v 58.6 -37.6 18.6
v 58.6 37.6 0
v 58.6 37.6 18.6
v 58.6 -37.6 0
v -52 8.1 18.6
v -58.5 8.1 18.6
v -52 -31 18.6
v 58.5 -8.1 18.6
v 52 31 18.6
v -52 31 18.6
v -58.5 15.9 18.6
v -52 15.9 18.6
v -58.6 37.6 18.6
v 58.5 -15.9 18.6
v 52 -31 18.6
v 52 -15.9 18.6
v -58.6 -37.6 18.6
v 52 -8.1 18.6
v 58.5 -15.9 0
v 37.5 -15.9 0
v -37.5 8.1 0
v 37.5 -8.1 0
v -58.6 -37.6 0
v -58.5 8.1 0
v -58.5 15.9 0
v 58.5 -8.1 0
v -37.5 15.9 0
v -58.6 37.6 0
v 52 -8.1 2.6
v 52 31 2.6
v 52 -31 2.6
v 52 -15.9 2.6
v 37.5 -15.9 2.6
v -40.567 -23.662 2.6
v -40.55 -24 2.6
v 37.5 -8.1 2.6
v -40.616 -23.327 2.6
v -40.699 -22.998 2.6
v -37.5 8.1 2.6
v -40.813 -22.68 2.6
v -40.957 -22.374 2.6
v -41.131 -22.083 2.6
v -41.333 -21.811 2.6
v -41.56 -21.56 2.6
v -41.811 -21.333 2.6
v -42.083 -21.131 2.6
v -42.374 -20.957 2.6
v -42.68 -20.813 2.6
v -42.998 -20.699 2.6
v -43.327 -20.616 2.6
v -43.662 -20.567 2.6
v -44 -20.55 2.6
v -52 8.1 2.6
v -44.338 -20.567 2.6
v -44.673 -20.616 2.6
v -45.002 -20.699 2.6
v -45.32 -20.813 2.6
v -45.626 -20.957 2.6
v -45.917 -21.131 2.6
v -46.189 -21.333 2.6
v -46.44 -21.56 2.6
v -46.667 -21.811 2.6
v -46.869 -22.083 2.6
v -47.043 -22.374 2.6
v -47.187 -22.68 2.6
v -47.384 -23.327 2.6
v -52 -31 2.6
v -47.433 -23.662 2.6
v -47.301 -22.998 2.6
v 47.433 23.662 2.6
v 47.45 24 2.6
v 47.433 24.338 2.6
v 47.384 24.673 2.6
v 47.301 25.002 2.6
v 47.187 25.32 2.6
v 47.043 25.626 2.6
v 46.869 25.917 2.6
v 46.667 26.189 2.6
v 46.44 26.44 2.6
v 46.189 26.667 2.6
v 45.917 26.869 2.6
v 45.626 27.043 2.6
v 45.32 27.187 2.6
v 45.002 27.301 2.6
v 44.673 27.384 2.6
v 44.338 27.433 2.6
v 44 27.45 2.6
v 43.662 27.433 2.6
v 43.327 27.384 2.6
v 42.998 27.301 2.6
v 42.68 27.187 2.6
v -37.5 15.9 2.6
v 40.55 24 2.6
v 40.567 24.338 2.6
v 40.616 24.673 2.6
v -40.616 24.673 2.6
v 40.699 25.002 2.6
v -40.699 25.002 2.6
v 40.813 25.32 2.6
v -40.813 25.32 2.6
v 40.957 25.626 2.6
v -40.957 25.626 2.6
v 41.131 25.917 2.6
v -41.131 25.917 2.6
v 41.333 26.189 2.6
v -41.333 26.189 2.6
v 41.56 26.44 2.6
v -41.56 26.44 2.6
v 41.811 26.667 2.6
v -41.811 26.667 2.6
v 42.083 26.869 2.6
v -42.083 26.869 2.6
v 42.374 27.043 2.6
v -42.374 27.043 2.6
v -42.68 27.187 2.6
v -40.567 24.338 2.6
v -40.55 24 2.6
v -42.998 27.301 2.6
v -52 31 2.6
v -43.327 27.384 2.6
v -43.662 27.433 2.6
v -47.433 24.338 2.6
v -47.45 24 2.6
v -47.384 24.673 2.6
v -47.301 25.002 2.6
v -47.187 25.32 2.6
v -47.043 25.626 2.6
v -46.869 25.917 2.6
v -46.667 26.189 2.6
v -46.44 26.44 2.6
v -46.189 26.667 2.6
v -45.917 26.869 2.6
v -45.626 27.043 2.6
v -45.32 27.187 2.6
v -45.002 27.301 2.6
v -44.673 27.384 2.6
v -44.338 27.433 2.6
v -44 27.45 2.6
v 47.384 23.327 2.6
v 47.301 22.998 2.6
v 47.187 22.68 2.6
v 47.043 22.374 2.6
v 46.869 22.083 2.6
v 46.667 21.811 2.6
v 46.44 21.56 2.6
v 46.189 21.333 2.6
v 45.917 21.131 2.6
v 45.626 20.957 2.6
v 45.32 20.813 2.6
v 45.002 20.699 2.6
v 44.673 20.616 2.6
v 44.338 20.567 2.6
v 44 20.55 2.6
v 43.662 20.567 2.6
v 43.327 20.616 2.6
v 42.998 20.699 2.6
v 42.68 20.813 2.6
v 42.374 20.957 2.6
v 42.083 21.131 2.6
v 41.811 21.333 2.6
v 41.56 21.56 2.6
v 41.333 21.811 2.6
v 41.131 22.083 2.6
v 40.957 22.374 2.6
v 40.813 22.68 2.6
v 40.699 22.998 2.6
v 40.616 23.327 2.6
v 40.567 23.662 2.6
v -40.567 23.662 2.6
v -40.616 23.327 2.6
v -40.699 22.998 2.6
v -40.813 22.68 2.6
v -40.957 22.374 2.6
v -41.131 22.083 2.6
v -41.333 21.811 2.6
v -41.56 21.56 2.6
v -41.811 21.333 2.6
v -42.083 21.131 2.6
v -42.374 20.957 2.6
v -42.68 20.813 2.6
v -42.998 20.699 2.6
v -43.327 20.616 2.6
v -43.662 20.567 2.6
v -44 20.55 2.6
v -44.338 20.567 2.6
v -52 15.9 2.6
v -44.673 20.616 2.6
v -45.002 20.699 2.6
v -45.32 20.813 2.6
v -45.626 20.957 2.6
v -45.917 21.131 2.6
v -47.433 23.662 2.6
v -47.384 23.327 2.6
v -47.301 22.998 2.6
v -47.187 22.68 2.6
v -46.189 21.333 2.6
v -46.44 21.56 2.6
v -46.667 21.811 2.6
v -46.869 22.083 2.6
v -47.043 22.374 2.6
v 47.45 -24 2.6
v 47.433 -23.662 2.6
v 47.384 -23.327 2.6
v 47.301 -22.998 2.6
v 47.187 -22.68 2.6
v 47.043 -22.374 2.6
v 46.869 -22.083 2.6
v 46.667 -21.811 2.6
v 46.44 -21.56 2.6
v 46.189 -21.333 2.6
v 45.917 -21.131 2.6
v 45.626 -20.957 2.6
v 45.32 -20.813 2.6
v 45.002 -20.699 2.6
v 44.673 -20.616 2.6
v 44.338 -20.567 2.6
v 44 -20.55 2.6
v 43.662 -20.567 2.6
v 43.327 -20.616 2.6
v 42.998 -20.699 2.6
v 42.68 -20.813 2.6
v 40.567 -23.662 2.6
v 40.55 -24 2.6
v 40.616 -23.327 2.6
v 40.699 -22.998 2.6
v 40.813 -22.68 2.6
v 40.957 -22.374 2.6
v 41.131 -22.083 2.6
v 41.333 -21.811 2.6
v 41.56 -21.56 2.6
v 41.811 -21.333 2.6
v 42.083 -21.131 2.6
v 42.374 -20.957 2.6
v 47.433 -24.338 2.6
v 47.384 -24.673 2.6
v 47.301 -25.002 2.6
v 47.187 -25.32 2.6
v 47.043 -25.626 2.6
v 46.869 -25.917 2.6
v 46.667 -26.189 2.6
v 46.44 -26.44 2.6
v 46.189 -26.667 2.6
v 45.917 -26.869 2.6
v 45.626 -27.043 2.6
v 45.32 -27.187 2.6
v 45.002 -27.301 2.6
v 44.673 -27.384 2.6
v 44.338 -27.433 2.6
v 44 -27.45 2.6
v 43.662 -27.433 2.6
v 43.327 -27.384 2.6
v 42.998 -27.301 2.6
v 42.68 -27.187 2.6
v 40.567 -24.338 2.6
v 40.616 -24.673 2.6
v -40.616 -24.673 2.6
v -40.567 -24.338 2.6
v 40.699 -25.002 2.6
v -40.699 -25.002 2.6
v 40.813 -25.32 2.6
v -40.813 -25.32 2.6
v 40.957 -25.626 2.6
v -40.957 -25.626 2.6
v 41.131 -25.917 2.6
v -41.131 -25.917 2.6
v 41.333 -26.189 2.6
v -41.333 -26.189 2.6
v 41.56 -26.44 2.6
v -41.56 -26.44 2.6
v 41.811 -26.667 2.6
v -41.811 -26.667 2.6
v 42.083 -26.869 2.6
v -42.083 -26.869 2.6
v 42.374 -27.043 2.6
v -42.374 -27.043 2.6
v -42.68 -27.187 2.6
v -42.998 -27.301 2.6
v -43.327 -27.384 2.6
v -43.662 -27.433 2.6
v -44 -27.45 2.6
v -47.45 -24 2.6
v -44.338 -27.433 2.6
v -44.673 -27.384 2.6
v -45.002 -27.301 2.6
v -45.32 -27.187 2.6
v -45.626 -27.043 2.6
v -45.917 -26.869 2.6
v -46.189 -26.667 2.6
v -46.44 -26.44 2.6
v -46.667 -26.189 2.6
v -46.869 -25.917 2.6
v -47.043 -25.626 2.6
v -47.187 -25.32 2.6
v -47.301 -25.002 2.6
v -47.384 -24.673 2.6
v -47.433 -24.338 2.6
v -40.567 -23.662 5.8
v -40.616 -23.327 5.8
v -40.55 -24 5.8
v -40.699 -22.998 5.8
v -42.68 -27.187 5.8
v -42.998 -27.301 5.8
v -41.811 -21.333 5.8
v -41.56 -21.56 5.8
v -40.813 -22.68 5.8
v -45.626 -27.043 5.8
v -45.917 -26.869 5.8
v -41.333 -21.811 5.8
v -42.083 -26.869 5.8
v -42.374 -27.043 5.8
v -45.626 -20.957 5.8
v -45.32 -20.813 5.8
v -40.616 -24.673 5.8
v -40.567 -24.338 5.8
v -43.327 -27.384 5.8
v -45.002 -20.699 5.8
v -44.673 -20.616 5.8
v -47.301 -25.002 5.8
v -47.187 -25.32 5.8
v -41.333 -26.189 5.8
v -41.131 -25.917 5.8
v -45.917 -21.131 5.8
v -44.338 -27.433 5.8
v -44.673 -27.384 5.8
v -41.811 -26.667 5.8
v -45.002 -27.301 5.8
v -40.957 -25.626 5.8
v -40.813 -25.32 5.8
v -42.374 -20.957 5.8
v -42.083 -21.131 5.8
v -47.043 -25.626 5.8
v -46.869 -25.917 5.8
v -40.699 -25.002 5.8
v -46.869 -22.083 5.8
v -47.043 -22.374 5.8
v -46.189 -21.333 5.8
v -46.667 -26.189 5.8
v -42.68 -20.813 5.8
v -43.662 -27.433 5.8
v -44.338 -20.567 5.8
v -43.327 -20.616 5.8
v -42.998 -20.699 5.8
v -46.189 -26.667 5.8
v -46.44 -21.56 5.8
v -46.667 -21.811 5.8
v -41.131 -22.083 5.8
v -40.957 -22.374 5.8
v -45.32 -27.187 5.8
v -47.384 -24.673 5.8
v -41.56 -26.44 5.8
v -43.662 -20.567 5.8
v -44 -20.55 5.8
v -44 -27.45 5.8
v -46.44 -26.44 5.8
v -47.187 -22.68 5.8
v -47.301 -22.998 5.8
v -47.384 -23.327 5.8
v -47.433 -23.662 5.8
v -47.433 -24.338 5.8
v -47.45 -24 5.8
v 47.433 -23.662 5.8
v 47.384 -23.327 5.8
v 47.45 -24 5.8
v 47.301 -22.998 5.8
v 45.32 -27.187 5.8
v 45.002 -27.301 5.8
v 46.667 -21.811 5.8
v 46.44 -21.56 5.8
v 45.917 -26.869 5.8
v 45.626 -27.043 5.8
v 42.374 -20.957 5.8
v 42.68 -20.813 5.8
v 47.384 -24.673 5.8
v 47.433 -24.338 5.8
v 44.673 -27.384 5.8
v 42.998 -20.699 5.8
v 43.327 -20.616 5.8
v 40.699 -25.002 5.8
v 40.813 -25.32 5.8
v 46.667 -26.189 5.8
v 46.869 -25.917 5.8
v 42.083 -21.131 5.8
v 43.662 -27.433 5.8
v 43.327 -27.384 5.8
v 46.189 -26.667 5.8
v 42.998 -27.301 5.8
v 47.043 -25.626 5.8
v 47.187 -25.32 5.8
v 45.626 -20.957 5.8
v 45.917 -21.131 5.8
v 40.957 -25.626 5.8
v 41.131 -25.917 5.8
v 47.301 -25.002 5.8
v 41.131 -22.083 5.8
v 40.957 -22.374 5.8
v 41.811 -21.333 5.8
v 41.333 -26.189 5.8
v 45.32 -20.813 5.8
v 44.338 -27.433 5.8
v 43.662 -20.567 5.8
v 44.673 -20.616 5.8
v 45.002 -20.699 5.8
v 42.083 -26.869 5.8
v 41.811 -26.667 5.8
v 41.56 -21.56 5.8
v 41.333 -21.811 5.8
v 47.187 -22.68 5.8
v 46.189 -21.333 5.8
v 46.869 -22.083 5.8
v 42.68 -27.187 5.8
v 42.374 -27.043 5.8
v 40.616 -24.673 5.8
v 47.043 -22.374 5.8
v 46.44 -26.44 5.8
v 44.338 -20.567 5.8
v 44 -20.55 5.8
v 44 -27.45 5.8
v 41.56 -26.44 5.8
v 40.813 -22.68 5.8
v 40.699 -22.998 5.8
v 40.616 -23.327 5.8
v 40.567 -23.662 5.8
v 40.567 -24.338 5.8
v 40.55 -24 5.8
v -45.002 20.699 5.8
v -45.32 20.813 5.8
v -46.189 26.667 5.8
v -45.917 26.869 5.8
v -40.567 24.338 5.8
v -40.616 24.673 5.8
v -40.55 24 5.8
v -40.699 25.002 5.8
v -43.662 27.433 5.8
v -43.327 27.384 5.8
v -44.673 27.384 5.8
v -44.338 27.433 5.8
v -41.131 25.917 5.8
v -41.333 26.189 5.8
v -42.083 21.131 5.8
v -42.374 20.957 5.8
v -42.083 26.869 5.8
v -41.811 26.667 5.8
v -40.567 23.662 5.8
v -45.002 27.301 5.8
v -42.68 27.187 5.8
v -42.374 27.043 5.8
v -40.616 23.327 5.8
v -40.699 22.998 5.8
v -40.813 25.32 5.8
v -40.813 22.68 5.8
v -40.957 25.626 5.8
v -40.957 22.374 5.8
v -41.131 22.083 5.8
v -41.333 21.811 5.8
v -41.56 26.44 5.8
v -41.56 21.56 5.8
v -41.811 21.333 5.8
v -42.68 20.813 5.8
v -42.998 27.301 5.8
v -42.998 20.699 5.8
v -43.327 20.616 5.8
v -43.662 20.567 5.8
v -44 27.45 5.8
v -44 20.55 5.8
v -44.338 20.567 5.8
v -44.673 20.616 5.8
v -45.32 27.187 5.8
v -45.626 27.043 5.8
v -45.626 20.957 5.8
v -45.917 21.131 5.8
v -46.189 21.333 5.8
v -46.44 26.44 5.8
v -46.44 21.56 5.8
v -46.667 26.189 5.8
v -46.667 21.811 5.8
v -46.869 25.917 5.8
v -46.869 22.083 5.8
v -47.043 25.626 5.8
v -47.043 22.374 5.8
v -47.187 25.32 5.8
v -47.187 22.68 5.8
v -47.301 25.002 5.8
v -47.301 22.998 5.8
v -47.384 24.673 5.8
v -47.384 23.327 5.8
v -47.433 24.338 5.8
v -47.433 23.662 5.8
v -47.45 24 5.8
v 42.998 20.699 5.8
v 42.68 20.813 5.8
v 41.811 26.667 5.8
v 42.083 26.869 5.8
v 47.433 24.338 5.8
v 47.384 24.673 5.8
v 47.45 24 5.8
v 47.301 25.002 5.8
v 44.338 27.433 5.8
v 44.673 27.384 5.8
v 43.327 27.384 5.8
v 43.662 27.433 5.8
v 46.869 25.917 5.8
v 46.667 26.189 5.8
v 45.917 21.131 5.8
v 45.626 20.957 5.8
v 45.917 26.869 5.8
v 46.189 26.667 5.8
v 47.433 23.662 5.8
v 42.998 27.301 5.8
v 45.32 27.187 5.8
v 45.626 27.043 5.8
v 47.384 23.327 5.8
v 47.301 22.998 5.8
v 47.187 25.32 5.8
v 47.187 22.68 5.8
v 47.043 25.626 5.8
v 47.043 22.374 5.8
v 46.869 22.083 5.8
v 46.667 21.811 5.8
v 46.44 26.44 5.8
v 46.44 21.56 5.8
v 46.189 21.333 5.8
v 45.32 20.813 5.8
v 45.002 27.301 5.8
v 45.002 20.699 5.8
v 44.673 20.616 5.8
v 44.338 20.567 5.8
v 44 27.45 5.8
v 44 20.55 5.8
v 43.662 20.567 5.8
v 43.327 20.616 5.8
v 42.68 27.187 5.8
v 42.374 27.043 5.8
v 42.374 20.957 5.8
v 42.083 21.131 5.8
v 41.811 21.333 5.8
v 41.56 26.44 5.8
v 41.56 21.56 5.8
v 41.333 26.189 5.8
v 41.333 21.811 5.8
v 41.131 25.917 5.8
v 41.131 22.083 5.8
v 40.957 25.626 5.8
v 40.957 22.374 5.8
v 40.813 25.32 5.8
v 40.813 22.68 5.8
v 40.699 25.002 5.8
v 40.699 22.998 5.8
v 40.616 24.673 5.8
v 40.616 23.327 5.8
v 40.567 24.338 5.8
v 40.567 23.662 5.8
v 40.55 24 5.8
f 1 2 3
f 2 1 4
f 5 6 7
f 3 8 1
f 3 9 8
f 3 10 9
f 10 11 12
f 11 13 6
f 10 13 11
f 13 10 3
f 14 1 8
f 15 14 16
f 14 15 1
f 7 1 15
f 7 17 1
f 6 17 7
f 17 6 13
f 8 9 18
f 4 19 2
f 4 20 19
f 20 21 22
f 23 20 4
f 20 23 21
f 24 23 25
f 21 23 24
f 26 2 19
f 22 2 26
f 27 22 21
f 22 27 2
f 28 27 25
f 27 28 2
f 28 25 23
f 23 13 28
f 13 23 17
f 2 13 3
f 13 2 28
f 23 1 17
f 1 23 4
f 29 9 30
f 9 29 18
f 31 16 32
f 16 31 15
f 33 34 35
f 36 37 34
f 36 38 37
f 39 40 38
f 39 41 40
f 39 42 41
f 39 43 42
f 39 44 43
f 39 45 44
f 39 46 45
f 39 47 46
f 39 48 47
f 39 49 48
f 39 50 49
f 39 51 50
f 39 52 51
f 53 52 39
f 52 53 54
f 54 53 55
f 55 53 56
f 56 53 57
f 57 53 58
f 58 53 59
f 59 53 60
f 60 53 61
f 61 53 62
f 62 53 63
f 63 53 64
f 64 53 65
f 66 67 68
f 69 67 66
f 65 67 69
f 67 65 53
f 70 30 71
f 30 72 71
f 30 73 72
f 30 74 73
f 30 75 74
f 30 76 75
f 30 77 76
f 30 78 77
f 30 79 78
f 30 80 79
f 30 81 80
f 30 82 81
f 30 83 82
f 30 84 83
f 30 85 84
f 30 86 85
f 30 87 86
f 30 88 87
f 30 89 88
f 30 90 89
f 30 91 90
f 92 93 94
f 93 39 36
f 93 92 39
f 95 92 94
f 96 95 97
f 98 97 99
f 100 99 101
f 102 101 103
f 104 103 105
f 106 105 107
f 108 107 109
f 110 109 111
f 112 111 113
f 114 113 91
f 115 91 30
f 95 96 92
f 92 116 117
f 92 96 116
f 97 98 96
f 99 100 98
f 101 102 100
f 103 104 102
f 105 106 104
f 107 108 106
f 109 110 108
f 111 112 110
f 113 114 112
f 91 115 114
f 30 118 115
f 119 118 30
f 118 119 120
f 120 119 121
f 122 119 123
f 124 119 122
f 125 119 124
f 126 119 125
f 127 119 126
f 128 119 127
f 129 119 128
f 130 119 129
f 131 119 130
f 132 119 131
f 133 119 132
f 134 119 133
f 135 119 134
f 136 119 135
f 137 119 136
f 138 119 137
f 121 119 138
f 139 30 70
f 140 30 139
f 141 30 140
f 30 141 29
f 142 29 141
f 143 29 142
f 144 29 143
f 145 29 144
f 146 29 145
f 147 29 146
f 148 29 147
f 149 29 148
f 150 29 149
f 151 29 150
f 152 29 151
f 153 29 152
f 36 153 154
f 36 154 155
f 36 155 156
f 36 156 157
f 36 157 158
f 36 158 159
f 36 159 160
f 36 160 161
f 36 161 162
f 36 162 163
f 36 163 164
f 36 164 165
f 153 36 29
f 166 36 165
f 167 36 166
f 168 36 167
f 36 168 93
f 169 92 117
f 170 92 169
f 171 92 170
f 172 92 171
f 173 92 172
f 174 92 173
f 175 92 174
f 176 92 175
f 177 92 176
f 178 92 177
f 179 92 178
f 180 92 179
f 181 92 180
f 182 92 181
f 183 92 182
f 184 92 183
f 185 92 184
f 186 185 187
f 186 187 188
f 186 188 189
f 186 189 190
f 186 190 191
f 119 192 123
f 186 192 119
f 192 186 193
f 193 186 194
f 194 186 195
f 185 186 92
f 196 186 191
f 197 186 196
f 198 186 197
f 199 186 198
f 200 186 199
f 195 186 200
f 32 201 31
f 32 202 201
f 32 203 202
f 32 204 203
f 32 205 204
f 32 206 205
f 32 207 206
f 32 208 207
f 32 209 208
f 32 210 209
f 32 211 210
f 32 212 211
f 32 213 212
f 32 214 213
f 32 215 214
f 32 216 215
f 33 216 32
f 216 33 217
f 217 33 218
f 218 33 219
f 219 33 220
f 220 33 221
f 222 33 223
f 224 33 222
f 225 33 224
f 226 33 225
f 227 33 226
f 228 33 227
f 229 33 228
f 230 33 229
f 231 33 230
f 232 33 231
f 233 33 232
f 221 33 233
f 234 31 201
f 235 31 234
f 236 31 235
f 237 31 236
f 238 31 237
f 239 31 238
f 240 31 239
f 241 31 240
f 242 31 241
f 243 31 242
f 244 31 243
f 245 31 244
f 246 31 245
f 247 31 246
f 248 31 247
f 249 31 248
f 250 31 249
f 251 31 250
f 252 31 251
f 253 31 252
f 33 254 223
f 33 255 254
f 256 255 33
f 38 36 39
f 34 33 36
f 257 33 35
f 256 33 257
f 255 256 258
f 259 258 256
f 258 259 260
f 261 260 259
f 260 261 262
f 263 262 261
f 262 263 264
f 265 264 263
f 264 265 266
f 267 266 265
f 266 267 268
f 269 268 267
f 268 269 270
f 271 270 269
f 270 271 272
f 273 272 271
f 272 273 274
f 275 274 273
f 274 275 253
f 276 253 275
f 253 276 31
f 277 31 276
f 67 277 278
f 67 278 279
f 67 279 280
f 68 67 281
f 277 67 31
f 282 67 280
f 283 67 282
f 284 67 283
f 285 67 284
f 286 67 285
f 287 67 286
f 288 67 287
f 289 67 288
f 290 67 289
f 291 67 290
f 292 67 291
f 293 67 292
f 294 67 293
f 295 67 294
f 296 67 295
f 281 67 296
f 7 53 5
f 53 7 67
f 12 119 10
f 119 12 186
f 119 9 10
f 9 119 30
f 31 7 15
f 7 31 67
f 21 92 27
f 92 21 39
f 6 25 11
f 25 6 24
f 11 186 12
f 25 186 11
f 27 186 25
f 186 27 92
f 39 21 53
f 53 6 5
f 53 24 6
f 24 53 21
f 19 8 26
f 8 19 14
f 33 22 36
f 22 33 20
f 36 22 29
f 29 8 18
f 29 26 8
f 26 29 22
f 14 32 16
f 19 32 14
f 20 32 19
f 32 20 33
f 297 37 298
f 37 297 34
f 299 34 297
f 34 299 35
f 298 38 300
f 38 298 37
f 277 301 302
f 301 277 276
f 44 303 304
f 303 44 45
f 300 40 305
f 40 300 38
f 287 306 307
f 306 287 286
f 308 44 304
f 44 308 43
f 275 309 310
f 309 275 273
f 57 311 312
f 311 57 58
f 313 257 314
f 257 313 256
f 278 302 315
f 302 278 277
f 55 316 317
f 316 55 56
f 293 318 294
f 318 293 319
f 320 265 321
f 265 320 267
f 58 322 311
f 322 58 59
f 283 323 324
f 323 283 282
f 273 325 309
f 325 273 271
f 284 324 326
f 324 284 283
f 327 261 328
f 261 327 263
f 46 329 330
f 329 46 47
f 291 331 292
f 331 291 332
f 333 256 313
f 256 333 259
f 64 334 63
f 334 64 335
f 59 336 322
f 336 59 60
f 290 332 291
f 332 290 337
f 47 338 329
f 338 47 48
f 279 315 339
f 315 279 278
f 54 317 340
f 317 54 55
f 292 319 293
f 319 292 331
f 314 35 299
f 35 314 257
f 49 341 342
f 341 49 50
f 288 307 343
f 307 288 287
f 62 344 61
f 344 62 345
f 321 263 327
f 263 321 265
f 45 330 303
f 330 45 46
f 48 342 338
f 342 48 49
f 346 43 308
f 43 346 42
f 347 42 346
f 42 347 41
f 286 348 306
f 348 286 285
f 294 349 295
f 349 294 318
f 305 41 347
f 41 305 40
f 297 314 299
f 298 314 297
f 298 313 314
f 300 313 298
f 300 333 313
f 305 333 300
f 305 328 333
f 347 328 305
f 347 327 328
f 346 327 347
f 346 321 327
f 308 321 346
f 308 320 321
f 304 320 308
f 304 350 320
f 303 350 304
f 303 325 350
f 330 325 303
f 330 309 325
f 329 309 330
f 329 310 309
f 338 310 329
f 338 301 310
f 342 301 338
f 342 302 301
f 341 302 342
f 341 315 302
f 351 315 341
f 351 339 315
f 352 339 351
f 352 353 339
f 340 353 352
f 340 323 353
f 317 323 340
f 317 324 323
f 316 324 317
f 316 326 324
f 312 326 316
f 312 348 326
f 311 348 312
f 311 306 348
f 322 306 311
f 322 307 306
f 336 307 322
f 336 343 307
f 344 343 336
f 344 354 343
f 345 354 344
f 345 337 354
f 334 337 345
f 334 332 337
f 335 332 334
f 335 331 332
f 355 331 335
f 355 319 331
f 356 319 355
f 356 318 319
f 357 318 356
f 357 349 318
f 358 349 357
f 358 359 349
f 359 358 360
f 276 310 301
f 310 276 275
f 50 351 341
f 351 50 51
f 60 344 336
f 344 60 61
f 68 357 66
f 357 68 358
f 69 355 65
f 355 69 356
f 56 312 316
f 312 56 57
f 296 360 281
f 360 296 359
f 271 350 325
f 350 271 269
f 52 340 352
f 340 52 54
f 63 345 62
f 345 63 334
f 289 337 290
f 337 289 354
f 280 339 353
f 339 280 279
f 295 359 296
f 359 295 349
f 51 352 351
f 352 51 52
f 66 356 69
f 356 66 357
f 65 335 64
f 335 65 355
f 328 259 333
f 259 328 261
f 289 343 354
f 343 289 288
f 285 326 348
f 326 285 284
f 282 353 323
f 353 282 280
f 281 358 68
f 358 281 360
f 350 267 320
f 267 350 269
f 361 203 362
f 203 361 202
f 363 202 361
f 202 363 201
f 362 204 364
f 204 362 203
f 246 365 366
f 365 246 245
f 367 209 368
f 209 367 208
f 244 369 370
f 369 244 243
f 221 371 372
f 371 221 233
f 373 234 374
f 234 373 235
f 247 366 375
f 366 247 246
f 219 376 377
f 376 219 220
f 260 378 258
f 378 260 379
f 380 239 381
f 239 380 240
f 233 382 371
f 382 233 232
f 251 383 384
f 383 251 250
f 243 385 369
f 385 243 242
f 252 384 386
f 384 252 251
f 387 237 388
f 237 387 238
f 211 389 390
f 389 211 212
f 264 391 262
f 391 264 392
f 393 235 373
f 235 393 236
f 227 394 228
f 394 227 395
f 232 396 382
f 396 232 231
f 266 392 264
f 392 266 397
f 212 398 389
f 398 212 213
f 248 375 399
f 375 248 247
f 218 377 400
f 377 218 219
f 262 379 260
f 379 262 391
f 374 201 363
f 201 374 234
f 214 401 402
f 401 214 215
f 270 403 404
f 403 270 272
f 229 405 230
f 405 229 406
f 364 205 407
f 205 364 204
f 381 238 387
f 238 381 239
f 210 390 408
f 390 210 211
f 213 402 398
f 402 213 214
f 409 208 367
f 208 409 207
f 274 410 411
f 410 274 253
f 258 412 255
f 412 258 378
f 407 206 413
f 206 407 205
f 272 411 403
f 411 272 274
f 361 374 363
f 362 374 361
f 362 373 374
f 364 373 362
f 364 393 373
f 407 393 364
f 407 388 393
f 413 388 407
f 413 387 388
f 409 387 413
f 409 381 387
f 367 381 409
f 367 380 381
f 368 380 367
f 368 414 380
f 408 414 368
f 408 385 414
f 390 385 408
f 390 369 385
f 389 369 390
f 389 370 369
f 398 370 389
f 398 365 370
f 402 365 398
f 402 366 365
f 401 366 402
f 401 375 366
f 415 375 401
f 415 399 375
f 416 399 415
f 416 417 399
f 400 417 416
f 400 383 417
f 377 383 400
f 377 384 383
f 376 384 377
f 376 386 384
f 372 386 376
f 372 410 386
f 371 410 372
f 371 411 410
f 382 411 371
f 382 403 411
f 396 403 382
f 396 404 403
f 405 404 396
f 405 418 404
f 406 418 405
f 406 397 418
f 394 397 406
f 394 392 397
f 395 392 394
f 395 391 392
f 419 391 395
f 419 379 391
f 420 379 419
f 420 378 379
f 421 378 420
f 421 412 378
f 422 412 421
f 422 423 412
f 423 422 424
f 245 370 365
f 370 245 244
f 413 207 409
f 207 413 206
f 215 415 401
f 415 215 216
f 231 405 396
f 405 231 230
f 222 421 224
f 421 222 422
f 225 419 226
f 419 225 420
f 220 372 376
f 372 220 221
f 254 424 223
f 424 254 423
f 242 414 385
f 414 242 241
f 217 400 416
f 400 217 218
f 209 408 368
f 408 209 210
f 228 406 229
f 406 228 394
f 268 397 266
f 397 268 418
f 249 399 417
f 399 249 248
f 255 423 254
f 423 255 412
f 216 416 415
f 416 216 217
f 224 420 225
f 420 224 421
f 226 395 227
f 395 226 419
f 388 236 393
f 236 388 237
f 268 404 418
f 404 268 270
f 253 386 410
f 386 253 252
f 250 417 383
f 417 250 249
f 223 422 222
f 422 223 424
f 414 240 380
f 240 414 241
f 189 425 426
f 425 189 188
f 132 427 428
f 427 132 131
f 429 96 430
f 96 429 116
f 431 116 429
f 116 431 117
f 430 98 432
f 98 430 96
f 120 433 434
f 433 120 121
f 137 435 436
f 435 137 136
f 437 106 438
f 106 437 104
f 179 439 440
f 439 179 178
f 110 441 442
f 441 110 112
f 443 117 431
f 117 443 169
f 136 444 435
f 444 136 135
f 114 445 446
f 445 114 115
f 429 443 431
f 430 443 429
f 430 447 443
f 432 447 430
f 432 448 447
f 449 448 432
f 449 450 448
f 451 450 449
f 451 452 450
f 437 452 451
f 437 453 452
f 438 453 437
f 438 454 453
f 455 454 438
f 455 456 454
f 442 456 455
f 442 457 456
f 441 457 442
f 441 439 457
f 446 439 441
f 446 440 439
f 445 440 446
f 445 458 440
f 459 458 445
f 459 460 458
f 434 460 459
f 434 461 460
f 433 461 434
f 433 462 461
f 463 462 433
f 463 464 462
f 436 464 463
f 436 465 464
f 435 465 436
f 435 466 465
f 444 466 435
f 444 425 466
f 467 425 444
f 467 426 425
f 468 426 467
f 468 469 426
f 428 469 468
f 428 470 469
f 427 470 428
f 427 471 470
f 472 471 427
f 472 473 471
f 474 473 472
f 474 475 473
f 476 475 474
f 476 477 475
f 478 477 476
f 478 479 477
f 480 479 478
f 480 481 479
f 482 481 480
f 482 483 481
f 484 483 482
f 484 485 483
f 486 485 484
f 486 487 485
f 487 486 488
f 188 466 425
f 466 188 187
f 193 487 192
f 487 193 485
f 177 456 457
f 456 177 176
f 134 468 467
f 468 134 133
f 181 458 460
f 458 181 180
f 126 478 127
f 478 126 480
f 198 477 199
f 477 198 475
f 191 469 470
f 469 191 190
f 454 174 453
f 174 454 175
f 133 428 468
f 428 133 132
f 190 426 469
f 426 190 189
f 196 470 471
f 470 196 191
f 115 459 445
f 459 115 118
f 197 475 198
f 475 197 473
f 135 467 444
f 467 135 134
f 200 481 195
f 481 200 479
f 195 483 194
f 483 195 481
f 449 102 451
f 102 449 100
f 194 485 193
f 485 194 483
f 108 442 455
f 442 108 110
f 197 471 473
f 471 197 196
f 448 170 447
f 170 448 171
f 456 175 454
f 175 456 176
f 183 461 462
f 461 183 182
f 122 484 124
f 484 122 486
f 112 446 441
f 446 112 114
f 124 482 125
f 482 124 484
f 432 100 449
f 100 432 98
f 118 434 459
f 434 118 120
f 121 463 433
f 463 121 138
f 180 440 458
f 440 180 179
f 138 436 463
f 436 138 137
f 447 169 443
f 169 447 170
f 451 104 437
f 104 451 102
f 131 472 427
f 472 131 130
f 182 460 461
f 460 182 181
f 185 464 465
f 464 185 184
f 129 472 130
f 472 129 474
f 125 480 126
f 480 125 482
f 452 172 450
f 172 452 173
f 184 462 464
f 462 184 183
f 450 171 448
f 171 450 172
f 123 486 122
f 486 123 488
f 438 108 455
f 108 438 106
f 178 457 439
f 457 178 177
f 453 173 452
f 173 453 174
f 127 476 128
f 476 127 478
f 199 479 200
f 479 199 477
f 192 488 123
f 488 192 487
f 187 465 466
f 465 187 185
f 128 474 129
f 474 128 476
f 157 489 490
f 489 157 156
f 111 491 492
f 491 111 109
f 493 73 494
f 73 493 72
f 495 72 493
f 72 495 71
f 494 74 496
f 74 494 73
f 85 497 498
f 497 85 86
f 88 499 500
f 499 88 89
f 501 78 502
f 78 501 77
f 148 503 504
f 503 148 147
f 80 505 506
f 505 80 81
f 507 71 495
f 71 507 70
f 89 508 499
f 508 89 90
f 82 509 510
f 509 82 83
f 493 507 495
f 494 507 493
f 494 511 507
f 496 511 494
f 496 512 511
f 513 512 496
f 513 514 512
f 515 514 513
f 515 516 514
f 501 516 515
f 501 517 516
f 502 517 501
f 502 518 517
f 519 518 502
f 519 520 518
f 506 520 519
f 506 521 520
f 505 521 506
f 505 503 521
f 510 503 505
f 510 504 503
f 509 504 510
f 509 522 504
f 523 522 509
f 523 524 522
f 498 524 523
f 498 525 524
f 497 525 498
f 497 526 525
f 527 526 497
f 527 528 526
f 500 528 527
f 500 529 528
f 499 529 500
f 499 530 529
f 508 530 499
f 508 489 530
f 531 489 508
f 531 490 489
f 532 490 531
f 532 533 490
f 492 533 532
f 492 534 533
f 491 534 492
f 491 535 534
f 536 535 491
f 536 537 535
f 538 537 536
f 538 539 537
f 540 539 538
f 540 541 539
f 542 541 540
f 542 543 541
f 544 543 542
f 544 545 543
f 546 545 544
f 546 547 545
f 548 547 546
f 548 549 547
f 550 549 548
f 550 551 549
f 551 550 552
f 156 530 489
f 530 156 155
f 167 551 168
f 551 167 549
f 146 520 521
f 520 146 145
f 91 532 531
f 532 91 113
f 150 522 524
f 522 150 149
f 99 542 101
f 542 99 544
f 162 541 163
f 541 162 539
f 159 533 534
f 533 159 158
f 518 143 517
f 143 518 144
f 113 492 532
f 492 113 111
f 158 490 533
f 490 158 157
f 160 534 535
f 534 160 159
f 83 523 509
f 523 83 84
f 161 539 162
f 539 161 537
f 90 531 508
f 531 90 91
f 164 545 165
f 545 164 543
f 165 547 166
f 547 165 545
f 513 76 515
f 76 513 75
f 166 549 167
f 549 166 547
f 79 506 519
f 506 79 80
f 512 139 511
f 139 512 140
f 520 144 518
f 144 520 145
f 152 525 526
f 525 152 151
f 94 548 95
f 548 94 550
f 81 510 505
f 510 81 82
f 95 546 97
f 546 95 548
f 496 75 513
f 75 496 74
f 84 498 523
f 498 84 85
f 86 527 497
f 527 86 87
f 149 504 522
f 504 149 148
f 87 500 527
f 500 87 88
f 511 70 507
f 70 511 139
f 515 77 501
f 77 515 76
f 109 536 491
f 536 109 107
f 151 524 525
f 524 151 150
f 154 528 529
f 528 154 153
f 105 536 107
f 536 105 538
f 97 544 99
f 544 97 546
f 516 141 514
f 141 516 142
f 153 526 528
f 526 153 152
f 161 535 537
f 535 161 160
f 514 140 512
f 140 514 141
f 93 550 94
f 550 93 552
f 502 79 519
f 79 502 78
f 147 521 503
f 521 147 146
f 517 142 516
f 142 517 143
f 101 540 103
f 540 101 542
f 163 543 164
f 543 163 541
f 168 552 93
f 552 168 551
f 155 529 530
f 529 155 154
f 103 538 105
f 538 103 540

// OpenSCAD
// file: 01_kicad_parameters.scad
// KiCad-generated OpenSCAD parameter handoff.
// Source: 01_kicad_mechanical_map.csv and 01_kicad_board.kicad_pcb.
$fn = 64;
board = [104.000, 62.000, 1.600];
enclosure = [117.200, 75.200, 18.600];
wall = 2.600;
lid_clearance = 2.400;

// [reference, kind, x_mm, y_mm, height_mm, keepout_radius_mm, role]
mechanical_features = [
  ["U1", "REGULATOR_QFN", -8.000, 0.000, 1.000, 5.000, "component_keepout"],
  ["L1", "INDUCTOR", 18.000, 4.000, 6.400, 12.000, "component_keepout"],
  ["C1", "BULK_CAP", 34.000, -18.000, 8.200, 8.000, "component_keepout"],
  ["J1", "POWER_IN", -48.000, 12.000, 5.000, 10.500, "connector_window"],
  ["J2", "POWER_OUT", 48.000, -12.000, 5.000, 10.500, "connector_window"],
  ["MH1", "MOUNTING_HOLE", -44.000, -24.000, 0.000, 1.500, "standoff_axis"],
  ["MH2", "MOUNTING_HOLE", 44.000, -24.000, 0.000, 1.500, "standoff_axis"],
  ["MH3", "MOUNTING_HOLE", -44.000, 24.000, 0.000, 1.500, "standoff_axis"],
  ["MH4", "MOUNTING_HOLE", 44.000, 24.000, 0.000, 1.500, "standoff_axis"],
];

standoff_axes = [for (f = mechanical_features) if (f[6] == "standoff_axis") [f[2], f[3], f[5], f[0]]];
interface_features = [for (f = mechanical_features) if (f[6] == "connector_window" || f[6] == "access_bore" || f[6] == "antenna_keepout") [f[2], f[3], f[5], f[0], f[6]]];
// main file
// Task 02: Buck regulator heat-spreader clamp package
// OpenSCAD stage consumes the KiCad-generated 01_kicad_parameters.scad handoff.
include <01_kicad_parameters.scad>;

module standoff(x, y) {
  translate([x, y, board[2]]) cylinder(d=6.900, h=wall + board[2]);
}
module keepout_window(x, y, r) {
  translate([x, y, enclosure[2]/2]) cube([2*r, wall*3, enclosure[2]], center=true);
}
module enclosure_shell() {
  difference() {
    translate([-enclosure[0]/2, -enclosure[1]/2, 0]) cube(enclosure);
    translate([-board[0]/2, -board[1]/2, wall]) cube([board[0], board[1], enclosure[2]]);
    // J1 POWER_IN side/service keepout
    keepout_window(-48.000, 12.000, 10.500);
    // J2 POWER_OUT side/service keepout
    keepout_window(48.000, -12.000, 10.500);
  }
}
// MH1 copied from KiCad at (-44.000, -24.000)
// MH2 copied from KiCad at (44.000, -24.000)
// MH3 copied from KiCad at (-44.000, 24.000)
// MH4 copied from KiCad at (44.000, 24.000)
union() {
  enclosure_shell();
  standoff(-44.000, -24.000);
  standoff(44.000, -24.000);
  standoff(-44.000, 24.000);
  standoff(44.000, 24.000);
}
